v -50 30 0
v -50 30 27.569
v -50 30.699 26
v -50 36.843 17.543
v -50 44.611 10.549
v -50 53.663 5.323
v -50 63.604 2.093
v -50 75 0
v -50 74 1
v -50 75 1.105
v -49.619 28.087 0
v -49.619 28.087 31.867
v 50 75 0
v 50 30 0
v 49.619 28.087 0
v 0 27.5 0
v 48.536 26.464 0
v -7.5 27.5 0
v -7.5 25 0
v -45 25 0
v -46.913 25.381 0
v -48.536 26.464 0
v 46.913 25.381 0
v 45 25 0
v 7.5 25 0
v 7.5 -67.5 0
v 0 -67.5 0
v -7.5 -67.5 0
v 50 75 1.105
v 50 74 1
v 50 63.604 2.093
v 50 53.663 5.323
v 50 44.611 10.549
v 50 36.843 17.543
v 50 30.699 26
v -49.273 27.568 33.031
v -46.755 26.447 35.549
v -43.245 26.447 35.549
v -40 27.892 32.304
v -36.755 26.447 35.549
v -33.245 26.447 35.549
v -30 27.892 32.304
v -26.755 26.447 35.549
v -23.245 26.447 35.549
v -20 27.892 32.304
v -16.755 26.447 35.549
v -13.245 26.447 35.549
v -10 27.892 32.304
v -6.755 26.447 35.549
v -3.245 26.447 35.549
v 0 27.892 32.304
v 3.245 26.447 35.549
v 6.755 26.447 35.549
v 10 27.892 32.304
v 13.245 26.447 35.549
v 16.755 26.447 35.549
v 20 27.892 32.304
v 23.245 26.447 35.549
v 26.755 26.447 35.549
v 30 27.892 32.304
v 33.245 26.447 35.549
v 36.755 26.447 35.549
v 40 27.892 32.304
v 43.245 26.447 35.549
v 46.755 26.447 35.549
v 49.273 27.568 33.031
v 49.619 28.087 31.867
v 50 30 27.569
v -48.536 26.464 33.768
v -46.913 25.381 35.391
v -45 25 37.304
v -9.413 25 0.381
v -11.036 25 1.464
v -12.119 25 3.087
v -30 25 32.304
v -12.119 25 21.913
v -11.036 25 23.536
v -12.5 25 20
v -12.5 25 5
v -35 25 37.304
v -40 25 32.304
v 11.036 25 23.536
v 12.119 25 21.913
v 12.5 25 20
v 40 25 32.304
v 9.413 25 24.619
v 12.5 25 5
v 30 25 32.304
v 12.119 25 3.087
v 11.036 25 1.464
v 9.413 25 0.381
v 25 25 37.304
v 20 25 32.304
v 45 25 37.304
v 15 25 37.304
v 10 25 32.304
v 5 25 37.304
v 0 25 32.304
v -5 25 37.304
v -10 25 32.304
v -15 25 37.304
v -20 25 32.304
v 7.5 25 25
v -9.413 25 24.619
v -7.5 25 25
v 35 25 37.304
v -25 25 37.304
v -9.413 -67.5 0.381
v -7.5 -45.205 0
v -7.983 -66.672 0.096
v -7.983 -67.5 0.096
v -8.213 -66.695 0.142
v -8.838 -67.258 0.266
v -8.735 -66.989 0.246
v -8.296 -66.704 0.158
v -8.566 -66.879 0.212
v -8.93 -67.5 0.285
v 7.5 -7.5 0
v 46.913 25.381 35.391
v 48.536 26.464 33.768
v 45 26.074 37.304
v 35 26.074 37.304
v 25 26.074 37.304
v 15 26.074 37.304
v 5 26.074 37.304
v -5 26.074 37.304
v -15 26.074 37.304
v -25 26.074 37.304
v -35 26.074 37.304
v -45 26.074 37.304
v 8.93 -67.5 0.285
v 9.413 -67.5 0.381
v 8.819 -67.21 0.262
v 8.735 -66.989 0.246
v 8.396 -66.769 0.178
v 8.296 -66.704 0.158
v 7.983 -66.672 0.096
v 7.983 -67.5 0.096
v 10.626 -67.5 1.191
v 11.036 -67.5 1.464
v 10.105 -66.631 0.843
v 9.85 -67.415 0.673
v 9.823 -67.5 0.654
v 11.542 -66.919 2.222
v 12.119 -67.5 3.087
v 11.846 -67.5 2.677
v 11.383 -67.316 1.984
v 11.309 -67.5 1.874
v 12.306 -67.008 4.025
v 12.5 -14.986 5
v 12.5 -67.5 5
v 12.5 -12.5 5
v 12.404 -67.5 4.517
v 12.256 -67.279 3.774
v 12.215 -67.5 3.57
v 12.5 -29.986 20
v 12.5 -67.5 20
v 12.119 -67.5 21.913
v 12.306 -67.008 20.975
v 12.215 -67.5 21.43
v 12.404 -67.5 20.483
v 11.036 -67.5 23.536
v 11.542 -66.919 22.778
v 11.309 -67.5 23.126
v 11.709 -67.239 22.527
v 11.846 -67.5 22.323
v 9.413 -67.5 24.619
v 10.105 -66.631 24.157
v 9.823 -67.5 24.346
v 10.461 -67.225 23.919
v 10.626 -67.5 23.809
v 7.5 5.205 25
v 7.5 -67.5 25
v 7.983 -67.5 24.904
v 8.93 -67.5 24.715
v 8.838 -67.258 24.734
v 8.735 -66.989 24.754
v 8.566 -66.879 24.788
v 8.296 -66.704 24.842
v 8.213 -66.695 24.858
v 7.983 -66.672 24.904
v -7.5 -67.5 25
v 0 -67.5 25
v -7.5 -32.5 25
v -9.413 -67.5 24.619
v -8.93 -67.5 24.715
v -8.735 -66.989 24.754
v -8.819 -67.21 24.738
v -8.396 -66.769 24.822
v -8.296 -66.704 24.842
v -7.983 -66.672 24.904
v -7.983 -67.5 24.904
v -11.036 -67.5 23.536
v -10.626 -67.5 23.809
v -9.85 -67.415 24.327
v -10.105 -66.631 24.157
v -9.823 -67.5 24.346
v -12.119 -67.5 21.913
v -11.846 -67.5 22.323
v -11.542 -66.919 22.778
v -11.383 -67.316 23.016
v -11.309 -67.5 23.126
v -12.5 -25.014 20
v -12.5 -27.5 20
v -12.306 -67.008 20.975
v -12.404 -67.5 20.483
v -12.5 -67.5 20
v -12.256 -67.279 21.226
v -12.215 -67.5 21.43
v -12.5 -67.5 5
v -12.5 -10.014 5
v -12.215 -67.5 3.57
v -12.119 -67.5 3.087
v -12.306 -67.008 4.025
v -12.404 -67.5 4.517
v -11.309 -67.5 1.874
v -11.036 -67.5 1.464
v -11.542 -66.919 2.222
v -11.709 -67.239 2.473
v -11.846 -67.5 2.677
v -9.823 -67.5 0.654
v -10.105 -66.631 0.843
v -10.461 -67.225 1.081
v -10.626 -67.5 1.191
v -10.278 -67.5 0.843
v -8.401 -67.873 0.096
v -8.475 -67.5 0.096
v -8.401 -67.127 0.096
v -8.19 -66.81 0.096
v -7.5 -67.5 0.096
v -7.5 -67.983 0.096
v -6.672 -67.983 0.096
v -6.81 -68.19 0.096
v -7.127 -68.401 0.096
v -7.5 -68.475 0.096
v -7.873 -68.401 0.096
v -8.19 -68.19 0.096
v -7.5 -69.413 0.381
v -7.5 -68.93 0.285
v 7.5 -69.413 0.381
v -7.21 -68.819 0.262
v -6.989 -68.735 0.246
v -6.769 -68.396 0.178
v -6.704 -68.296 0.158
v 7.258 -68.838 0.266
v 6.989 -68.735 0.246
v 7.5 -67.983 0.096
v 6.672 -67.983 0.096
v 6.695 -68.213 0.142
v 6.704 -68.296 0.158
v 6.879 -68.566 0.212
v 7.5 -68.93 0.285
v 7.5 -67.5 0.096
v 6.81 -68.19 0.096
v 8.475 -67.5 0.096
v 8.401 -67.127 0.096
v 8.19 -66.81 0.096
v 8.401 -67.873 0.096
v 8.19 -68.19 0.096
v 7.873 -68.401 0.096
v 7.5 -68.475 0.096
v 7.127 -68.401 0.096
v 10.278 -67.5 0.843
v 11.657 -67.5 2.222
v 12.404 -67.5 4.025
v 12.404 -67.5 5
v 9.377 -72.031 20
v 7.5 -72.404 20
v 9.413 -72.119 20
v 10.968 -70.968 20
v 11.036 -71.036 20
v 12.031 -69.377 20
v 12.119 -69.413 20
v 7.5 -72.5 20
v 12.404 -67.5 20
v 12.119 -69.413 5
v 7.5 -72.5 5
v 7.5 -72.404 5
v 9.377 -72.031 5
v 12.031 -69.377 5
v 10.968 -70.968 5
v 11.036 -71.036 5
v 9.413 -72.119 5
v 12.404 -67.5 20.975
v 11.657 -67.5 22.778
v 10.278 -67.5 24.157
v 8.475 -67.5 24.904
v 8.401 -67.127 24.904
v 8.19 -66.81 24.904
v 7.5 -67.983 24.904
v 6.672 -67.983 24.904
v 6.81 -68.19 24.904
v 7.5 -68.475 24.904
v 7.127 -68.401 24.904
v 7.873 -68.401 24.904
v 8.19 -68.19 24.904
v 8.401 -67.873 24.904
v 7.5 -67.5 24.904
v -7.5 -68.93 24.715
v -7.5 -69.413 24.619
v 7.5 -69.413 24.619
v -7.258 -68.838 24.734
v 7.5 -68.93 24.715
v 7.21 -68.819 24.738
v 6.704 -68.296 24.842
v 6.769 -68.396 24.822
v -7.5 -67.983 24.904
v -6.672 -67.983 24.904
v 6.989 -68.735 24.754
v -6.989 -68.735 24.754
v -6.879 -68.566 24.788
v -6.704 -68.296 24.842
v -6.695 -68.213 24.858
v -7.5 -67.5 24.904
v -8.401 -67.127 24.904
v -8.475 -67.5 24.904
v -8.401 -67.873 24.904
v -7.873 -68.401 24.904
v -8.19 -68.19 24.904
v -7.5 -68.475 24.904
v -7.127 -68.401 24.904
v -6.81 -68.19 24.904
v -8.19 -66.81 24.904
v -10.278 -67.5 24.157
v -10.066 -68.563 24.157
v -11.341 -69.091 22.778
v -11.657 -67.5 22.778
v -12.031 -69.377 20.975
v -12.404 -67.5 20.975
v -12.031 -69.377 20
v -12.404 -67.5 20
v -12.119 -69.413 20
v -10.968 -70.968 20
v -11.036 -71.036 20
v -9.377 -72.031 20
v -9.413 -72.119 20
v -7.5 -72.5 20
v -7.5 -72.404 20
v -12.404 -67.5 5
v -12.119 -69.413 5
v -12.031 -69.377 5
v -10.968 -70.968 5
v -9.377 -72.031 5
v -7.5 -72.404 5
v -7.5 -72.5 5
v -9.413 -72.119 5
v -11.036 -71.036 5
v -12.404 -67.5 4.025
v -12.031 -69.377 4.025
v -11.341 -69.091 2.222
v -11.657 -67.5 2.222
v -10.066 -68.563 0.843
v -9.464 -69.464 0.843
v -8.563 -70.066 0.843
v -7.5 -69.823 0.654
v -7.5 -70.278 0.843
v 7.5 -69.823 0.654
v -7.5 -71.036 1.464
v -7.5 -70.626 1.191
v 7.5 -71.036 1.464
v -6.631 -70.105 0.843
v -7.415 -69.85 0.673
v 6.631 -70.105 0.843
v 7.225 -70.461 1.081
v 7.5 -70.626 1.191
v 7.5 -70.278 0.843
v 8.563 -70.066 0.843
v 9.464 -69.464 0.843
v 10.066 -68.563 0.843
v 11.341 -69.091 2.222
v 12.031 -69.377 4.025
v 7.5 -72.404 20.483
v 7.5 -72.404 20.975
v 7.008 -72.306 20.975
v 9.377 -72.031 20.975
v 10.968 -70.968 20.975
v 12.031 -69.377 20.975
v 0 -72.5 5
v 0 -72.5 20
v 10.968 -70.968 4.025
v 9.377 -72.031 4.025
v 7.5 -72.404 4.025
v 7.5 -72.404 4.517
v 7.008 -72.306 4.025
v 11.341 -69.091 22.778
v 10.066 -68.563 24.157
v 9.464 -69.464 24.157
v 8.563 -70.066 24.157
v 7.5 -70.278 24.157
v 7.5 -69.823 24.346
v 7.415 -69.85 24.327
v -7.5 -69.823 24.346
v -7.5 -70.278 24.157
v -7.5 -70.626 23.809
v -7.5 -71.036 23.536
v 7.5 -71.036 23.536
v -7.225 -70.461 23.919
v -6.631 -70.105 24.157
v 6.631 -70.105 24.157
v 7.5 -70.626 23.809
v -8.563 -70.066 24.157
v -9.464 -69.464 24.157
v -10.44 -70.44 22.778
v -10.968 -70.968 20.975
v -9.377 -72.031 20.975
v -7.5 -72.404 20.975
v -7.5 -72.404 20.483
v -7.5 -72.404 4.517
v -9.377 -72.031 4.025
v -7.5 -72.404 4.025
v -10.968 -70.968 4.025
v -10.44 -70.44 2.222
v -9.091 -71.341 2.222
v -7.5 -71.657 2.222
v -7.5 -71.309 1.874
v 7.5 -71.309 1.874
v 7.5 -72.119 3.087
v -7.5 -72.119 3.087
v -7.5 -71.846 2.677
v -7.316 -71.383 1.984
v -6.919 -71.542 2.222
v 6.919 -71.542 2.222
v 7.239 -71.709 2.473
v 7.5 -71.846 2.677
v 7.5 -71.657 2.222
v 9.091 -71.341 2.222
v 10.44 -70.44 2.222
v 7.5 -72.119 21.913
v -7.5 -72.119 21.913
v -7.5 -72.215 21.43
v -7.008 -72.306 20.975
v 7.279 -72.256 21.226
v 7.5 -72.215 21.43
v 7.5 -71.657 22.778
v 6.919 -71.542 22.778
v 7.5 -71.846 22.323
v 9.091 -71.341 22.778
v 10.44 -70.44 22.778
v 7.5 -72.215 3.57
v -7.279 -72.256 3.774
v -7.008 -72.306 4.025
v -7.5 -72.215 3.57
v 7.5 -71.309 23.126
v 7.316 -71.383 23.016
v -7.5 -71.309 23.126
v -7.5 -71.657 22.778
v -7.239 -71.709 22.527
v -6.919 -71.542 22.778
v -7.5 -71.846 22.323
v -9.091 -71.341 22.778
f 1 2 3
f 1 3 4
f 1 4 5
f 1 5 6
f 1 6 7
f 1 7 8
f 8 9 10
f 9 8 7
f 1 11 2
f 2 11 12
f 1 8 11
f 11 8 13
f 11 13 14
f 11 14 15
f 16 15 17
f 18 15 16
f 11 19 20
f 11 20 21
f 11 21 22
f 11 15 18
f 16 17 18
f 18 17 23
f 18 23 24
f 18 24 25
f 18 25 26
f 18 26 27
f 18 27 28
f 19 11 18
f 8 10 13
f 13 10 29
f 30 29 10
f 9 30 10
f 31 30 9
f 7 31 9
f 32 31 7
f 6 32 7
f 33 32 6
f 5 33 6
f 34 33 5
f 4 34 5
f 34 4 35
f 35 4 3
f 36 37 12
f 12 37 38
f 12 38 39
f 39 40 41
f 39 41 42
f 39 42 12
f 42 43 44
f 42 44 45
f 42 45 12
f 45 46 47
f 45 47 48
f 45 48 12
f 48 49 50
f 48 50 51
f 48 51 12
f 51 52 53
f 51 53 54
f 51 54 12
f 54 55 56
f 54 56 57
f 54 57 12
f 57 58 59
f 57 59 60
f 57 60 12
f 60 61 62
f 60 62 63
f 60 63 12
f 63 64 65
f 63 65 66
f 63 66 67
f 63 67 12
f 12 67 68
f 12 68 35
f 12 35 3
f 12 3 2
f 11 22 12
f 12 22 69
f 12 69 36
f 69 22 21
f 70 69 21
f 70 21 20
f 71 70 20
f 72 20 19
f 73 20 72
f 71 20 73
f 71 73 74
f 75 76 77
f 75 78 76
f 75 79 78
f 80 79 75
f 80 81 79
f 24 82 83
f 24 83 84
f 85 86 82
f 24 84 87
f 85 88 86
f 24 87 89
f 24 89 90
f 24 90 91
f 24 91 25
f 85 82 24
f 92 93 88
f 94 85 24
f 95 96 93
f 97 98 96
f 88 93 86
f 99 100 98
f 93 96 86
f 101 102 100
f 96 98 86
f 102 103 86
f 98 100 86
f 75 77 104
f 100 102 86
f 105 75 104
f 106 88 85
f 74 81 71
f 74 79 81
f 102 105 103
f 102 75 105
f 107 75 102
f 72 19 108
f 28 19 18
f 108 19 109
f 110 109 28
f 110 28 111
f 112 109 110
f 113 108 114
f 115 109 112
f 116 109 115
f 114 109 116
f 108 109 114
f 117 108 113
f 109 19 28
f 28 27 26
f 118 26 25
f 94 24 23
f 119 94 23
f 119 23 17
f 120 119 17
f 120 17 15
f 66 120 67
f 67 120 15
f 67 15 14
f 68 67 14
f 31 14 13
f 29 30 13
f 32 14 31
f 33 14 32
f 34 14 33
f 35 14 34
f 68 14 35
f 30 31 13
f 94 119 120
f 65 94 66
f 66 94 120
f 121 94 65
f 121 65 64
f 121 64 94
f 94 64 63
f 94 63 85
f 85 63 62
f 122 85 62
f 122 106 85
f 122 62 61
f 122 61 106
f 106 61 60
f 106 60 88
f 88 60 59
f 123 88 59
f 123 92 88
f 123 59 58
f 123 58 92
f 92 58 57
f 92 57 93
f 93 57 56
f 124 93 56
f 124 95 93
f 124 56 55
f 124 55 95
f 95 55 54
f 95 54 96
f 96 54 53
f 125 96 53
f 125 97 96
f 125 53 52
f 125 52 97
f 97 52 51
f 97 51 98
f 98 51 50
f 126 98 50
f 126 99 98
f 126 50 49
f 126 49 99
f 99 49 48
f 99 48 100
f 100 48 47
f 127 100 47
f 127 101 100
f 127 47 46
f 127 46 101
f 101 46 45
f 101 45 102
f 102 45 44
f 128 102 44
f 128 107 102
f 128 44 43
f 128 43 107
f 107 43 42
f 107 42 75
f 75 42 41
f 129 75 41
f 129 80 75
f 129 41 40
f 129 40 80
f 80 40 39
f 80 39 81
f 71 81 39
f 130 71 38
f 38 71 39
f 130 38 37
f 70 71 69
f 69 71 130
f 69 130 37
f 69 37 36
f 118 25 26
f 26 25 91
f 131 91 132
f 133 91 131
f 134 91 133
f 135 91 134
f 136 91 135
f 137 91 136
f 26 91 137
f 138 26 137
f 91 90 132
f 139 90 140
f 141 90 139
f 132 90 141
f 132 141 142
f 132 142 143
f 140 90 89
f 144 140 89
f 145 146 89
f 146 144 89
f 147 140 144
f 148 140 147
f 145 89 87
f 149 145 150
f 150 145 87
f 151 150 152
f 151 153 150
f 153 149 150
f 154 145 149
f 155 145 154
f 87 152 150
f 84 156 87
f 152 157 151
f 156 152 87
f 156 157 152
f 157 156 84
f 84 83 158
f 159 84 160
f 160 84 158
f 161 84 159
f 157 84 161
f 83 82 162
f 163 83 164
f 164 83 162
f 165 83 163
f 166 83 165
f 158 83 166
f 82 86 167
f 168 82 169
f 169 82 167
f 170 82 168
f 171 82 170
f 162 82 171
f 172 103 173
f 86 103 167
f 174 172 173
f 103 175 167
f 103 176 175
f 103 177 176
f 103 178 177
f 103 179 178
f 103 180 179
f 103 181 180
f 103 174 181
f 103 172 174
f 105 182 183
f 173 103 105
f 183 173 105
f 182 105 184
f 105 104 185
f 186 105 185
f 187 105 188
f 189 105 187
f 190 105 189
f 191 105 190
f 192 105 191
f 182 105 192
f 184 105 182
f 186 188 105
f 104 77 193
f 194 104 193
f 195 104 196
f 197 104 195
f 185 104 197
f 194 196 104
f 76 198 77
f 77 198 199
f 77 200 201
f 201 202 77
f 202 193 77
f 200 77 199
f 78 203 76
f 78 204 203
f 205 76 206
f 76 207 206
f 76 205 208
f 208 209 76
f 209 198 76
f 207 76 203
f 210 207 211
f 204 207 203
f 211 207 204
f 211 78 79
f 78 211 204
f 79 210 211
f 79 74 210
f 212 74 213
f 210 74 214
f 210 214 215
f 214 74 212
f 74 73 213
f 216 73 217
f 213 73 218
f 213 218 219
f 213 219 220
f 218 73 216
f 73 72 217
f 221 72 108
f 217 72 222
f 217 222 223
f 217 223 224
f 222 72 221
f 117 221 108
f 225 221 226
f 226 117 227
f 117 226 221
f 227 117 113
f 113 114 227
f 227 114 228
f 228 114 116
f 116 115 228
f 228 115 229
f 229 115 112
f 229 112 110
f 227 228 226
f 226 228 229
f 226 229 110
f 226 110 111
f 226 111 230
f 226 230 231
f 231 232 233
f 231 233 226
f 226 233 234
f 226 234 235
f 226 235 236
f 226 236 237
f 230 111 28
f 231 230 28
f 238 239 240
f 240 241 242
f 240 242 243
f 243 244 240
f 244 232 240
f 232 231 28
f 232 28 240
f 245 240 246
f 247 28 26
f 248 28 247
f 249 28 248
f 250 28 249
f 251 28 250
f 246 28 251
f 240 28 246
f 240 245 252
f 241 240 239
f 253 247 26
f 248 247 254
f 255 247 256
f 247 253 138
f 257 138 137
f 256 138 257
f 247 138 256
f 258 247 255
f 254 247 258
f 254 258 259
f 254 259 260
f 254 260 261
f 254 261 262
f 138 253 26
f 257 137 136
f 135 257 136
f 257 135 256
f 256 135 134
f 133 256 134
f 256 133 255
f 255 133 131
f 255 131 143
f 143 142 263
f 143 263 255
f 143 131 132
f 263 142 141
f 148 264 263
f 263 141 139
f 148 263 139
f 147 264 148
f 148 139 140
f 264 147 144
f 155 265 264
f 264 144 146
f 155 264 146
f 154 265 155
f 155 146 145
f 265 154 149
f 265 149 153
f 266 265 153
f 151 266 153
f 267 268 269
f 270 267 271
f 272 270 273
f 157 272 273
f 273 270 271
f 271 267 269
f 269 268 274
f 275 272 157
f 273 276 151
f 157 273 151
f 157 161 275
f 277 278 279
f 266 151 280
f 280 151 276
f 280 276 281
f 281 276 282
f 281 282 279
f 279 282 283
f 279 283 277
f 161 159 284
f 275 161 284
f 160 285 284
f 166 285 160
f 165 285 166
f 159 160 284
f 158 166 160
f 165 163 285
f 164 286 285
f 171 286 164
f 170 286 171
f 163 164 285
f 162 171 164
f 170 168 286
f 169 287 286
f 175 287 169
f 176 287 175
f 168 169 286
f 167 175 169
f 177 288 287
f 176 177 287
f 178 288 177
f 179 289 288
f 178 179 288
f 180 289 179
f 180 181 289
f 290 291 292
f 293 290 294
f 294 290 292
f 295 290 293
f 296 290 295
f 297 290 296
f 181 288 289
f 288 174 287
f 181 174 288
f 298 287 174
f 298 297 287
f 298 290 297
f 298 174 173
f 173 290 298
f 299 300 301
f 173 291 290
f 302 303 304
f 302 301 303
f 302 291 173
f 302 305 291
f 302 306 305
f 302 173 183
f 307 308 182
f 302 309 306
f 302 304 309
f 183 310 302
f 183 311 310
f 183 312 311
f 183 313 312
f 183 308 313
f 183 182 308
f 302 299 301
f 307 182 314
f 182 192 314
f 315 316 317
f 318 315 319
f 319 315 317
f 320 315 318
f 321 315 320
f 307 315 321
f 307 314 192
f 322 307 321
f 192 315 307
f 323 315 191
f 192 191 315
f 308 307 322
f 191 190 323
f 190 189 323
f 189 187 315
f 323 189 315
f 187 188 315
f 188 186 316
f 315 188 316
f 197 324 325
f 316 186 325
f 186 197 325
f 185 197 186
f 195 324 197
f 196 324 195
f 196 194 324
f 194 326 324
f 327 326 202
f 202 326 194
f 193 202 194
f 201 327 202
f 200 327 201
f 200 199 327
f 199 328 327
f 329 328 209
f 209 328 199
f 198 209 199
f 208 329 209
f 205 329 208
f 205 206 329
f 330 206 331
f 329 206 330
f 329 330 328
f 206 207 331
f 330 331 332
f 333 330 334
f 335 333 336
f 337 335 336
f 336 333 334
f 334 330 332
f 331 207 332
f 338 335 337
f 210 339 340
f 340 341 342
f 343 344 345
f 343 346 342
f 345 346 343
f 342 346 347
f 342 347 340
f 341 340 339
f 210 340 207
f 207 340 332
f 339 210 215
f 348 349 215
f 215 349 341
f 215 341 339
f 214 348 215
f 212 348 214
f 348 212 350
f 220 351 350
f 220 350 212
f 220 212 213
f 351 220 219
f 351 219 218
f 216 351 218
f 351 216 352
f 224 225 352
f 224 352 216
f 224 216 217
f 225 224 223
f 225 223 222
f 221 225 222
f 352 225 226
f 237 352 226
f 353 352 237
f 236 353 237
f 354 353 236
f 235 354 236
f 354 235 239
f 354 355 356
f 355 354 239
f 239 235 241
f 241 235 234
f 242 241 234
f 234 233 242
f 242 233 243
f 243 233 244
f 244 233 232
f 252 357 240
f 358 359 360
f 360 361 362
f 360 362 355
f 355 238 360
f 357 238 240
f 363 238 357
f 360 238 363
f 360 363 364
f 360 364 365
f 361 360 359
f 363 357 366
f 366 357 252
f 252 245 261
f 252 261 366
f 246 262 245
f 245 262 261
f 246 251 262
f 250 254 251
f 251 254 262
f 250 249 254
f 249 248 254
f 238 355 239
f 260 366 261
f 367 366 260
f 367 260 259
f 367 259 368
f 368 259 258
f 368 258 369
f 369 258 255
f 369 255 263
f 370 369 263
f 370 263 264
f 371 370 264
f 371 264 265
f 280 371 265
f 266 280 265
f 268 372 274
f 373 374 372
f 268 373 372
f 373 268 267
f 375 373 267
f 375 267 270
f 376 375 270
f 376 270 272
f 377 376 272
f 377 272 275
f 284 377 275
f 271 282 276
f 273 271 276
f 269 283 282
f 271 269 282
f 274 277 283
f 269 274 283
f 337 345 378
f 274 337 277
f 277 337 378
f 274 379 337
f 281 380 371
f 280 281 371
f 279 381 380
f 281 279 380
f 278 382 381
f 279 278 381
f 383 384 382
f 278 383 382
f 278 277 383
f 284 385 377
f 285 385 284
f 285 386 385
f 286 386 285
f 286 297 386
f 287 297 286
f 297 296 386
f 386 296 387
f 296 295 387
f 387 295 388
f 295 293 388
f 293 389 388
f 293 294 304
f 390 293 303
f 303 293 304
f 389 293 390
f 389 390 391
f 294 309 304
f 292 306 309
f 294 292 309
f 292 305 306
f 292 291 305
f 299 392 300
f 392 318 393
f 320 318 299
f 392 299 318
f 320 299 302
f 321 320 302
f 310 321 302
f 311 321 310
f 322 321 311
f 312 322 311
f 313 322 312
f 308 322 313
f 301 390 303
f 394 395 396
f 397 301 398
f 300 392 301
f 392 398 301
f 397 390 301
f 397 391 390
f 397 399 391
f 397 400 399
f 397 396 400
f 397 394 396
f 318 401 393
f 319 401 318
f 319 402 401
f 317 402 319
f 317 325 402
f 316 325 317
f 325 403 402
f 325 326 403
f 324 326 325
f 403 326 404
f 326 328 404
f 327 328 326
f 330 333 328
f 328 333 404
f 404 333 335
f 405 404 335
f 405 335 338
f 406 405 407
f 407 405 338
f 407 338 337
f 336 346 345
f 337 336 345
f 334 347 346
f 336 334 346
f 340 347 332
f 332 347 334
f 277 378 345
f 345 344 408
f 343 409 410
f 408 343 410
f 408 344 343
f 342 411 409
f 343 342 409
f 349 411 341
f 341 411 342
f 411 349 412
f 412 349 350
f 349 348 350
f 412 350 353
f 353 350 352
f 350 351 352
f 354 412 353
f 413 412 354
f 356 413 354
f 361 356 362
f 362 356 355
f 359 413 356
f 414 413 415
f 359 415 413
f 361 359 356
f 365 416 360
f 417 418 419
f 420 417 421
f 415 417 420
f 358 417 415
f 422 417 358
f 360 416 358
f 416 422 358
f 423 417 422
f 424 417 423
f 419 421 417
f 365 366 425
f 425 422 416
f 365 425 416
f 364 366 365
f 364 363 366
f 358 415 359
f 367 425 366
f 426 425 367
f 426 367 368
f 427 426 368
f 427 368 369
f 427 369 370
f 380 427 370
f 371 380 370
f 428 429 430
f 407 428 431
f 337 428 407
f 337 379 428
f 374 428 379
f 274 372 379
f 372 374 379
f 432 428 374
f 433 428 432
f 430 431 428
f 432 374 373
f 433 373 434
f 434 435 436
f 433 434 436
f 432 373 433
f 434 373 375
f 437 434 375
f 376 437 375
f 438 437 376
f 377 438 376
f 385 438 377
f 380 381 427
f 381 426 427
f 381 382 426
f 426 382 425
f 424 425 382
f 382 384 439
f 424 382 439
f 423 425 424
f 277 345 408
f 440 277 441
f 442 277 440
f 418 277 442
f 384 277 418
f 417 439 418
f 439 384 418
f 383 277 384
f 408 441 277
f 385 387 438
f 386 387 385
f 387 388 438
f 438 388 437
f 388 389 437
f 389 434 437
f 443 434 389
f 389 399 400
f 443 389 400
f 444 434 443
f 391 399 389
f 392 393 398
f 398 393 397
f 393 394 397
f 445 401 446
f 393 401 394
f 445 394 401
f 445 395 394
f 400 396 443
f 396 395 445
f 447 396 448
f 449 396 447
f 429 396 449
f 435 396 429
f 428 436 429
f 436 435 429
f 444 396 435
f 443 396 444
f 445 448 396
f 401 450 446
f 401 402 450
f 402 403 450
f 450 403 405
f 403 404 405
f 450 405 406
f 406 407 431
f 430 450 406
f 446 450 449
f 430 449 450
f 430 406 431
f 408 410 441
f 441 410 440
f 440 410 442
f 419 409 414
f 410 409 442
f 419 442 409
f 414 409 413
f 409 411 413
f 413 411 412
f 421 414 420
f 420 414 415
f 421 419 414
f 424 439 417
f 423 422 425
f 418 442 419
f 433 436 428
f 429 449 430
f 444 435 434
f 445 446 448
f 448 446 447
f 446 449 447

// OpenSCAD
// Global Parameters
// chrisjrob

use <MCAD/boxes.scad>;

// Globals
scoop_width     = 100;
scoop_length    =  50; // Must be greater than or equal to scoop_height
scoop_lip       =   1; // The thickness of the leading edge of the scoop
handle_length   = 100; // A comfortable length for a hand
handle_diameter =  25;
roundedness     =   5;
scoop_height    =  handle_diameter * 1.5; // Should not need changing

module icescraper() {

    difference() {

        // Things that exist
        union() {

            // cube
            translate(v = [0,0,scoop_height/2]) {
                // cube( size = [scoop_width, scoop_length, scoop_height], center = true);
                roundedBox( [scoop_width, scoop_length, scoop_height], roundedness, true );
            }

            // lip that isn't rounded
            translate(v = [0,scoop_length/4,scoop_height/8]) {
                cube( size = [scoop_width, scoop_length/2, scoop_height /4], center = true);
            }

            // handle
            translate(v = [0, -handle_length/2 -scoop_length/2 +roundedness, handle_diameter/2]) {
                roundedBox( [handle_diameter, handle_length + roundedness, handle_diameter], roundedness, false );
            }

        }

        // Things to be cut out
        union() {
            
            // Cutaway from cube to make scoop
            translate(v = [0,scoop_length/2-scoop_lip,scoop_length + scoop_lip]) {
                rotate(a = [0,90,0]) {
                    cylinder(h = scoop_width +10, r = scoop_length, center = true);
                }
            }

            // Grooves from top of scoop
            for(x = [-scoop_width/2 : (scoop_width/10) : scoop_width/2]) {
                translate(v = [x,-scoop_length/2,scoop_height*1.05]) {
                    rotate(a = [0,45,0]) {
                        cube( size = [scoop_width/10, scoop_width/10, scoop_width/10], center = true);
                    }
                }
            }

        }
    }

}

translate( v = [0, handle_length/2, 0] ) {
    icescraper();
}
